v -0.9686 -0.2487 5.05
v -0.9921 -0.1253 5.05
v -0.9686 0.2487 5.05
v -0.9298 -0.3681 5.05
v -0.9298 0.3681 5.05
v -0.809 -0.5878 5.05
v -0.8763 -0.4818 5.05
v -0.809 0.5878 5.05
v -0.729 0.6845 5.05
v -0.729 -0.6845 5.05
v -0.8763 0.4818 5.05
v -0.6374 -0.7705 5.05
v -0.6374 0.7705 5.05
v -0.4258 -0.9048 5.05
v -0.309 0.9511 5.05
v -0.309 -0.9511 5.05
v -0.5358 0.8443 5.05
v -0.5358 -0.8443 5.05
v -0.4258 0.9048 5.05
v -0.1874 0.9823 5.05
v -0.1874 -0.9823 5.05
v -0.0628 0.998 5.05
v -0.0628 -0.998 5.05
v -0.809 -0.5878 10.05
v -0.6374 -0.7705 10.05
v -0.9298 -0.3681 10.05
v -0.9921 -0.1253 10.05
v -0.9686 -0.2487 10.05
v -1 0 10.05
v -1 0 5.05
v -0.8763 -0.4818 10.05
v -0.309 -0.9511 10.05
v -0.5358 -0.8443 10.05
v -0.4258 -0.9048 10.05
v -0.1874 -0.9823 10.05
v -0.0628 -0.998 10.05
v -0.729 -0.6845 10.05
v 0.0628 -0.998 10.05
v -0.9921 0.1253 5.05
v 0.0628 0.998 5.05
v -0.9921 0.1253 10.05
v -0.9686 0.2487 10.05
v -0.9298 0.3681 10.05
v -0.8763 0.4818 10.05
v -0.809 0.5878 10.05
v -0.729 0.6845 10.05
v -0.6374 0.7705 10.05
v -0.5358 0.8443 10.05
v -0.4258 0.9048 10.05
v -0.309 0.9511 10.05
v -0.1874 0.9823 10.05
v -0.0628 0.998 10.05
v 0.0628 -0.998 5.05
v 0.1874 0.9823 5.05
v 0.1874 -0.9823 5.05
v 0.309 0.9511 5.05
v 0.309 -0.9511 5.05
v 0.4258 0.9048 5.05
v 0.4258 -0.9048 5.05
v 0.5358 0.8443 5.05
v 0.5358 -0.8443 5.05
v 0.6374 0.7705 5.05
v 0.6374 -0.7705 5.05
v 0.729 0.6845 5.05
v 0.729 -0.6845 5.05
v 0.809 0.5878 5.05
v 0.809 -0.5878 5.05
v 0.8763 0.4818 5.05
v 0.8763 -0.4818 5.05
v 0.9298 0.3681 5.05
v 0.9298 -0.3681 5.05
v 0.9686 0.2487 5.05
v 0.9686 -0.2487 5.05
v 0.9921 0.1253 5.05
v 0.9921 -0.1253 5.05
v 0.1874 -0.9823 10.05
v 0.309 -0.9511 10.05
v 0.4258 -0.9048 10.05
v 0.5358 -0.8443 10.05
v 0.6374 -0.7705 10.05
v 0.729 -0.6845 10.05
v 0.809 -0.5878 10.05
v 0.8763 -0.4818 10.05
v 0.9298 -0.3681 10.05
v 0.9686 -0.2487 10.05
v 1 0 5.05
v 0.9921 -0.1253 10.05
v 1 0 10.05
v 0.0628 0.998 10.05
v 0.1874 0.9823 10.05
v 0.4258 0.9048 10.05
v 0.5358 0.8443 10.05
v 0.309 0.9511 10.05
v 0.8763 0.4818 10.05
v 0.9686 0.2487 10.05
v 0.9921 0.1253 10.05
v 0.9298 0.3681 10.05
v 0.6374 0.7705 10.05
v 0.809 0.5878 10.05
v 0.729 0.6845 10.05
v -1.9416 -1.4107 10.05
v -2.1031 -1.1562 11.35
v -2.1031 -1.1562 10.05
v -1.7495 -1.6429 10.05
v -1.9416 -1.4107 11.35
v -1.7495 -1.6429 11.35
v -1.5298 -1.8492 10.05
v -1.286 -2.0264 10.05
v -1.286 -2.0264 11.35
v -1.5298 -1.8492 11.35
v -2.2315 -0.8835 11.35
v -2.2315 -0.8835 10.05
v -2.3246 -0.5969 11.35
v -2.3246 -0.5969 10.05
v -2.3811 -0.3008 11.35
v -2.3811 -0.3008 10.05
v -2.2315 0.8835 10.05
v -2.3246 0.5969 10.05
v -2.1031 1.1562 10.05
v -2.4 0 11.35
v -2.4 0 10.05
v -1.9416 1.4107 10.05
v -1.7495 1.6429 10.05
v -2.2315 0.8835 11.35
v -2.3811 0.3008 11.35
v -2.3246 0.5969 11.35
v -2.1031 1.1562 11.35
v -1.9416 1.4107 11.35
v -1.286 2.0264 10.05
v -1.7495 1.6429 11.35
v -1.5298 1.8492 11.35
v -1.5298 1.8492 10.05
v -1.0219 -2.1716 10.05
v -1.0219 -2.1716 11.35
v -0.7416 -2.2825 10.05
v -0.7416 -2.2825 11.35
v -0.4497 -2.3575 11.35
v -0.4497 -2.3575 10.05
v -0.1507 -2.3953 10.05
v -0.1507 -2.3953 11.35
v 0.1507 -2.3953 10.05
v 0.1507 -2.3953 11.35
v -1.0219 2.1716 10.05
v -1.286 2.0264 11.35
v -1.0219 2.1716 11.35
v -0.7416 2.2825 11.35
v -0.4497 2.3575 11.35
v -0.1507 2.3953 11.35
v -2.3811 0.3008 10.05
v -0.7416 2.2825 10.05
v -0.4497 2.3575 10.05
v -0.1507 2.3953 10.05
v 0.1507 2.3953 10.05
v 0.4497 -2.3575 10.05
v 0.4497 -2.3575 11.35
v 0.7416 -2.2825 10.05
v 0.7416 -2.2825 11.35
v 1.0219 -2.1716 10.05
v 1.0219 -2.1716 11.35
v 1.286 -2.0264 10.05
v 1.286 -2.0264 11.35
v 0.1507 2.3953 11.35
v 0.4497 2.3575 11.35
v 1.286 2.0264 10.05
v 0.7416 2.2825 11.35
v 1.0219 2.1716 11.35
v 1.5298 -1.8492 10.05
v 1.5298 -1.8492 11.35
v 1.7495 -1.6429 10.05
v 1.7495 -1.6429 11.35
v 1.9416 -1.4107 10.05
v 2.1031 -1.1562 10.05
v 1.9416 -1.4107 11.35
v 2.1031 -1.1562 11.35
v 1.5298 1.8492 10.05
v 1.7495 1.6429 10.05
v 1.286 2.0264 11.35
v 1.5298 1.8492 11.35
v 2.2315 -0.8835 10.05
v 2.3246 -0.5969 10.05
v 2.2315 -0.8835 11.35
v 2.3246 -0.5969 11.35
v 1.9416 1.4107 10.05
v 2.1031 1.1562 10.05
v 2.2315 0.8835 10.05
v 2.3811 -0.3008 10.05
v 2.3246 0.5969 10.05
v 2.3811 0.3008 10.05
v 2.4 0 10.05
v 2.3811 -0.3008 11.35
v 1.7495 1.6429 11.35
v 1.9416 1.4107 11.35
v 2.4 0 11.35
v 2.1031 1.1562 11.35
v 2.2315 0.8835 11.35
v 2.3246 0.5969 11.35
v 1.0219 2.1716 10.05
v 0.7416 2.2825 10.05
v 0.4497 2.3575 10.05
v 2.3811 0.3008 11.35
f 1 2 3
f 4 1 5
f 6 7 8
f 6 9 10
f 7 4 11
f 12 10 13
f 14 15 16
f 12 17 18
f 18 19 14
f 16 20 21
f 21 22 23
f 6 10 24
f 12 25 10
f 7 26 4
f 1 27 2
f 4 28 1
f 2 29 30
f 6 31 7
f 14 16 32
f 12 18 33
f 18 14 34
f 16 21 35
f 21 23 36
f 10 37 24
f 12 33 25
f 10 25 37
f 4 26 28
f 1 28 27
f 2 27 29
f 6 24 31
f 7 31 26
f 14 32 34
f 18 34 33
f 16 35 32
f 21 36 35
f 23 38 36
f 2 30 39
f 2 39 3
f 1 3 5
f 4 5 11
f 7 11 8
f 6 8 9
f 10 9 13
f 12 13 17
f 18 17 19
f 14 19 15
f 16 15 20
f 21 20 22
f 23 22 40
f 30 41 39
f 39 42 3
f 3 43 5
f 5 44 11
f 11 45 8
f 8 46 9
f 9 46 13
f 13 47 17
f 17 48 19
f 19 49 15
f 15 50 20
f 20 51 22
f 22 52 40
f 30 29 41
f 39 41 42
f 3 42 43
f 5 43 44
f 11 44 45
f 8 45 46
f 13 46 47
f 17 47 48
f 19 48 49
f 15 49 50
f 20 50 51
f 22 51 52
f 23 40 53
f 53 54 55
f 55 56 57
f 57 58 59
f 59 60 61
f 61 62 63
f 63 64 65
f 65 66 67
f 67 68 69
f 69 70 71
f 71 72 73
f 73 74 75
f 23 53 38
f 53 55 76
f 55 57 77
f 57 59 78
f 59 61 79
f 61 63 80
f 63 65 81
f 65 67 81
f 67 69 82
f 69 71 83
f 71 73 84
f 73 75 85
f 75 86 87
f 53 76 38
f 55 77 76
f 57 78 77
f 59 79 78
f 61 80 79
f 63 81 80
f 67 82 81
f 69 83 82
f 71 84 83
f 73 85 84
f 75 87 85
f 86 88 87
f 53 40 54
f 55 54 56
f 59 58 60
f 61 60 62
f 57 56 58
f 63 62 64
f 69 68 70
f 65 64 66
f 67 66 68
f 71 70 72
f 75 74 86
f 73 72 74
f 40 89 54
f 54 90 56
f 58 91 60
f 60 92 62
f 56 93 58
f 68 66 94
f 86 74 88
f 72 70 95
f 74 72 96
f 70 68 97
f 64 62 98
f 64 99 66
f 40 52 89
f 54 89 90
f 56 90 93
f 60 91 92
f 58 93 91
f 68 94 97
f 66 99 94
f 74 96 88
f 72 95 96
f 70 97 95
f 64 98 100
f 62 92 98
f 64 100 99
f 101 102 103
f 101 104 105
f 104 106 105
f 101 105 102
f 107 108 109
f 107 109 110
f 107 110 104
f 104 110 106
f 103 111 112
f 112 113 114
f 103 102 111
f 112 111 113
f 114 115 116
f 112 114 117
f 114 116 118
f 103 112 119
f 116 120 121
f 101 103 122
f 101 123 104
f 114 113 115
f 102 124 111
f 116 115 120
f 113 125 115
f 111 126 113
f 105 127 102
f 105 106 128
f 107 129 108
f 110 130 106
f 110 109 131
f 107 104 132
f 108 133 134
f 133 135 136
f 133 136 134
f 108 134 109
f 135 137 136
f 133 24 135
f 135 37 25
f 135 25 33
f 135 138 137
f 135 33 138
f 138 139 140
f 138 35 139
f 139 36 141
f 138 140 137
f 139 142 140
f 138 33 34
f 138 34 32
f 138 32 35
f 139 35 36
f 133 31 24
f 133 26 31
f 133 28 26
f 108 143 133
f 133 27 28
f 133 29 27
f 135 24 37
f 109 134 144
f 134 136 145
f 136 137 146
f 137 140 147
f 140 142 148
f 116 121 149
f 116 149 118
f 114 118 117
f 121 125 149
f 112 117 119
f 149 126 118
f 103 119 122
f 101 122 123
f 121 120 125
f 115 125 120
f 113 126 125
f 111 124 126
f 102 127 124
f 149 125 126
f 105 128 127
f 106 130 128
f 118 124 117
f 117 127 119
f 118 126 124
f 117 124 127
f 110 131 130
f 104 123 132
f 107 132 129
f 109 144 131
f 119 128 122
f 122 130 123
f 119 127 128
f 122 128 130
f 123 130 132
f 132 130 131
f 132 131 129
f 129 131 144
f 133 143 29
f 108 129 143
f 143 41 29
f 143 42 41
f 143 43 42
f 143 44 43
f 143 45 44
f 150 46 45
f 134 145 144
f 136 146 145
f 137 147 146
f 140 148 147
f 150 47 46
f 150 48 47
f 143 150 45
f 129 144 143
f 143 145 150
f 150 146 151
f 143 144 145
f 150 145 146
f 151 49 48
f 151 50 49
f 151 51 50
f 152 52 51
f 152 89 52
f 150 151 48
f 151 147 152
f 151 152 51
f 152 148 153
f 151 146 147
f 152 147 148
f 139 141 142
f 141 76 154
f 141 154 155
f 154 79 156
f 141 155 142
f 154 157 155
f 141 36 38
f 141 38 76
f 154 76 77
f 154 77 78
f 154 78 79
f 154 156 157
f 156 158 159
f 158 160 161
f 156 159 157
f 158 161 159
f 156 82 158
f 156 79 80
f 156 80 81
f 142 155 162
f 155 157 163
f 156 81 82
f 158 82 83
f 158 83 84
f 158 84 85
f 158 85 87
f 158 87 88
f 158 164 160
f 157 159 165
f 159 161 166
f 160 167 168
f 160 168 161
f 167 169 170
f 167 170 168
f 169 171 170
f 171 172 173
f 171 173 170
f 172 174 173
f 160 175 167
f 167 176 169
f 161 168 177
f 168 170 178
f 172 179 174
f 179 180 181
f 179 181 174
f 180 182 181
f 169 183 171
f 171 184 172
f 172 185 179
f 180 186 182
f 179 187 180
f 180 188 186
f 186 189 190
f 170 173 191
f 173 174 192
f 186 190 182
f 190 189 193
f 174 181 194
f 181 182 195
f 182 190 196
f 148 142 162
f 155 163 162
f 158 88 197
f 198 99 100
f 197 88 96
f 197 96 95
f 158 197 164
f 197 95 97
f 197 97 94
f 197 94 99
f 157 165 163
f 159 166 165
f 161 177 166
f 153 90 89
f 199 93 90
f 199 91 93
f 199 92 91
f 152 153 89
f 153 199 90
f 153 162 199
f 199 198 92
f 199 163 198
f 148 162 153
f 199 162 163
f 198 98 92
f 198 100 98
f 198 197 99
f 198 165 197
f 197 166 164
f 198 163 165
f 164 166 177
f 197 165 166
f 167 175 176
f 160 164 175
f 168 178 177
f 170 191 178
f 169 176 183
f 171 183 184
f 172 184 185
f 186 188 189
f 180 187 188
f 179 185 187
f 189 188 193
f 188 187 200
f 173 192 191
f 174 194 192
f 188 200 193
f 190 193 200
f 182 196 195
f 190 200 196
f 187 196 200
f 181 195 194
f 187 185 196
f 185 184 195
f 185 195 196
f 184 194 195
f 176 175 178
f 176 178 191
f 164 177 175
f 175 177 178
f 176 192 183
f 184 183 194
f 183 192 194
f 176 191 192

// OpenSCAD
$fn = 50;

difference() {
	union() {
		translate(v = [0, 0, 5.050000000000001]) {
			cylinder(h = 5, r = 1.0);
		}
		translate(v = [0, 0, 10.05]) {
			cylinder(h = 1.3, r = 2.4);
		}
	}
	union();
}
